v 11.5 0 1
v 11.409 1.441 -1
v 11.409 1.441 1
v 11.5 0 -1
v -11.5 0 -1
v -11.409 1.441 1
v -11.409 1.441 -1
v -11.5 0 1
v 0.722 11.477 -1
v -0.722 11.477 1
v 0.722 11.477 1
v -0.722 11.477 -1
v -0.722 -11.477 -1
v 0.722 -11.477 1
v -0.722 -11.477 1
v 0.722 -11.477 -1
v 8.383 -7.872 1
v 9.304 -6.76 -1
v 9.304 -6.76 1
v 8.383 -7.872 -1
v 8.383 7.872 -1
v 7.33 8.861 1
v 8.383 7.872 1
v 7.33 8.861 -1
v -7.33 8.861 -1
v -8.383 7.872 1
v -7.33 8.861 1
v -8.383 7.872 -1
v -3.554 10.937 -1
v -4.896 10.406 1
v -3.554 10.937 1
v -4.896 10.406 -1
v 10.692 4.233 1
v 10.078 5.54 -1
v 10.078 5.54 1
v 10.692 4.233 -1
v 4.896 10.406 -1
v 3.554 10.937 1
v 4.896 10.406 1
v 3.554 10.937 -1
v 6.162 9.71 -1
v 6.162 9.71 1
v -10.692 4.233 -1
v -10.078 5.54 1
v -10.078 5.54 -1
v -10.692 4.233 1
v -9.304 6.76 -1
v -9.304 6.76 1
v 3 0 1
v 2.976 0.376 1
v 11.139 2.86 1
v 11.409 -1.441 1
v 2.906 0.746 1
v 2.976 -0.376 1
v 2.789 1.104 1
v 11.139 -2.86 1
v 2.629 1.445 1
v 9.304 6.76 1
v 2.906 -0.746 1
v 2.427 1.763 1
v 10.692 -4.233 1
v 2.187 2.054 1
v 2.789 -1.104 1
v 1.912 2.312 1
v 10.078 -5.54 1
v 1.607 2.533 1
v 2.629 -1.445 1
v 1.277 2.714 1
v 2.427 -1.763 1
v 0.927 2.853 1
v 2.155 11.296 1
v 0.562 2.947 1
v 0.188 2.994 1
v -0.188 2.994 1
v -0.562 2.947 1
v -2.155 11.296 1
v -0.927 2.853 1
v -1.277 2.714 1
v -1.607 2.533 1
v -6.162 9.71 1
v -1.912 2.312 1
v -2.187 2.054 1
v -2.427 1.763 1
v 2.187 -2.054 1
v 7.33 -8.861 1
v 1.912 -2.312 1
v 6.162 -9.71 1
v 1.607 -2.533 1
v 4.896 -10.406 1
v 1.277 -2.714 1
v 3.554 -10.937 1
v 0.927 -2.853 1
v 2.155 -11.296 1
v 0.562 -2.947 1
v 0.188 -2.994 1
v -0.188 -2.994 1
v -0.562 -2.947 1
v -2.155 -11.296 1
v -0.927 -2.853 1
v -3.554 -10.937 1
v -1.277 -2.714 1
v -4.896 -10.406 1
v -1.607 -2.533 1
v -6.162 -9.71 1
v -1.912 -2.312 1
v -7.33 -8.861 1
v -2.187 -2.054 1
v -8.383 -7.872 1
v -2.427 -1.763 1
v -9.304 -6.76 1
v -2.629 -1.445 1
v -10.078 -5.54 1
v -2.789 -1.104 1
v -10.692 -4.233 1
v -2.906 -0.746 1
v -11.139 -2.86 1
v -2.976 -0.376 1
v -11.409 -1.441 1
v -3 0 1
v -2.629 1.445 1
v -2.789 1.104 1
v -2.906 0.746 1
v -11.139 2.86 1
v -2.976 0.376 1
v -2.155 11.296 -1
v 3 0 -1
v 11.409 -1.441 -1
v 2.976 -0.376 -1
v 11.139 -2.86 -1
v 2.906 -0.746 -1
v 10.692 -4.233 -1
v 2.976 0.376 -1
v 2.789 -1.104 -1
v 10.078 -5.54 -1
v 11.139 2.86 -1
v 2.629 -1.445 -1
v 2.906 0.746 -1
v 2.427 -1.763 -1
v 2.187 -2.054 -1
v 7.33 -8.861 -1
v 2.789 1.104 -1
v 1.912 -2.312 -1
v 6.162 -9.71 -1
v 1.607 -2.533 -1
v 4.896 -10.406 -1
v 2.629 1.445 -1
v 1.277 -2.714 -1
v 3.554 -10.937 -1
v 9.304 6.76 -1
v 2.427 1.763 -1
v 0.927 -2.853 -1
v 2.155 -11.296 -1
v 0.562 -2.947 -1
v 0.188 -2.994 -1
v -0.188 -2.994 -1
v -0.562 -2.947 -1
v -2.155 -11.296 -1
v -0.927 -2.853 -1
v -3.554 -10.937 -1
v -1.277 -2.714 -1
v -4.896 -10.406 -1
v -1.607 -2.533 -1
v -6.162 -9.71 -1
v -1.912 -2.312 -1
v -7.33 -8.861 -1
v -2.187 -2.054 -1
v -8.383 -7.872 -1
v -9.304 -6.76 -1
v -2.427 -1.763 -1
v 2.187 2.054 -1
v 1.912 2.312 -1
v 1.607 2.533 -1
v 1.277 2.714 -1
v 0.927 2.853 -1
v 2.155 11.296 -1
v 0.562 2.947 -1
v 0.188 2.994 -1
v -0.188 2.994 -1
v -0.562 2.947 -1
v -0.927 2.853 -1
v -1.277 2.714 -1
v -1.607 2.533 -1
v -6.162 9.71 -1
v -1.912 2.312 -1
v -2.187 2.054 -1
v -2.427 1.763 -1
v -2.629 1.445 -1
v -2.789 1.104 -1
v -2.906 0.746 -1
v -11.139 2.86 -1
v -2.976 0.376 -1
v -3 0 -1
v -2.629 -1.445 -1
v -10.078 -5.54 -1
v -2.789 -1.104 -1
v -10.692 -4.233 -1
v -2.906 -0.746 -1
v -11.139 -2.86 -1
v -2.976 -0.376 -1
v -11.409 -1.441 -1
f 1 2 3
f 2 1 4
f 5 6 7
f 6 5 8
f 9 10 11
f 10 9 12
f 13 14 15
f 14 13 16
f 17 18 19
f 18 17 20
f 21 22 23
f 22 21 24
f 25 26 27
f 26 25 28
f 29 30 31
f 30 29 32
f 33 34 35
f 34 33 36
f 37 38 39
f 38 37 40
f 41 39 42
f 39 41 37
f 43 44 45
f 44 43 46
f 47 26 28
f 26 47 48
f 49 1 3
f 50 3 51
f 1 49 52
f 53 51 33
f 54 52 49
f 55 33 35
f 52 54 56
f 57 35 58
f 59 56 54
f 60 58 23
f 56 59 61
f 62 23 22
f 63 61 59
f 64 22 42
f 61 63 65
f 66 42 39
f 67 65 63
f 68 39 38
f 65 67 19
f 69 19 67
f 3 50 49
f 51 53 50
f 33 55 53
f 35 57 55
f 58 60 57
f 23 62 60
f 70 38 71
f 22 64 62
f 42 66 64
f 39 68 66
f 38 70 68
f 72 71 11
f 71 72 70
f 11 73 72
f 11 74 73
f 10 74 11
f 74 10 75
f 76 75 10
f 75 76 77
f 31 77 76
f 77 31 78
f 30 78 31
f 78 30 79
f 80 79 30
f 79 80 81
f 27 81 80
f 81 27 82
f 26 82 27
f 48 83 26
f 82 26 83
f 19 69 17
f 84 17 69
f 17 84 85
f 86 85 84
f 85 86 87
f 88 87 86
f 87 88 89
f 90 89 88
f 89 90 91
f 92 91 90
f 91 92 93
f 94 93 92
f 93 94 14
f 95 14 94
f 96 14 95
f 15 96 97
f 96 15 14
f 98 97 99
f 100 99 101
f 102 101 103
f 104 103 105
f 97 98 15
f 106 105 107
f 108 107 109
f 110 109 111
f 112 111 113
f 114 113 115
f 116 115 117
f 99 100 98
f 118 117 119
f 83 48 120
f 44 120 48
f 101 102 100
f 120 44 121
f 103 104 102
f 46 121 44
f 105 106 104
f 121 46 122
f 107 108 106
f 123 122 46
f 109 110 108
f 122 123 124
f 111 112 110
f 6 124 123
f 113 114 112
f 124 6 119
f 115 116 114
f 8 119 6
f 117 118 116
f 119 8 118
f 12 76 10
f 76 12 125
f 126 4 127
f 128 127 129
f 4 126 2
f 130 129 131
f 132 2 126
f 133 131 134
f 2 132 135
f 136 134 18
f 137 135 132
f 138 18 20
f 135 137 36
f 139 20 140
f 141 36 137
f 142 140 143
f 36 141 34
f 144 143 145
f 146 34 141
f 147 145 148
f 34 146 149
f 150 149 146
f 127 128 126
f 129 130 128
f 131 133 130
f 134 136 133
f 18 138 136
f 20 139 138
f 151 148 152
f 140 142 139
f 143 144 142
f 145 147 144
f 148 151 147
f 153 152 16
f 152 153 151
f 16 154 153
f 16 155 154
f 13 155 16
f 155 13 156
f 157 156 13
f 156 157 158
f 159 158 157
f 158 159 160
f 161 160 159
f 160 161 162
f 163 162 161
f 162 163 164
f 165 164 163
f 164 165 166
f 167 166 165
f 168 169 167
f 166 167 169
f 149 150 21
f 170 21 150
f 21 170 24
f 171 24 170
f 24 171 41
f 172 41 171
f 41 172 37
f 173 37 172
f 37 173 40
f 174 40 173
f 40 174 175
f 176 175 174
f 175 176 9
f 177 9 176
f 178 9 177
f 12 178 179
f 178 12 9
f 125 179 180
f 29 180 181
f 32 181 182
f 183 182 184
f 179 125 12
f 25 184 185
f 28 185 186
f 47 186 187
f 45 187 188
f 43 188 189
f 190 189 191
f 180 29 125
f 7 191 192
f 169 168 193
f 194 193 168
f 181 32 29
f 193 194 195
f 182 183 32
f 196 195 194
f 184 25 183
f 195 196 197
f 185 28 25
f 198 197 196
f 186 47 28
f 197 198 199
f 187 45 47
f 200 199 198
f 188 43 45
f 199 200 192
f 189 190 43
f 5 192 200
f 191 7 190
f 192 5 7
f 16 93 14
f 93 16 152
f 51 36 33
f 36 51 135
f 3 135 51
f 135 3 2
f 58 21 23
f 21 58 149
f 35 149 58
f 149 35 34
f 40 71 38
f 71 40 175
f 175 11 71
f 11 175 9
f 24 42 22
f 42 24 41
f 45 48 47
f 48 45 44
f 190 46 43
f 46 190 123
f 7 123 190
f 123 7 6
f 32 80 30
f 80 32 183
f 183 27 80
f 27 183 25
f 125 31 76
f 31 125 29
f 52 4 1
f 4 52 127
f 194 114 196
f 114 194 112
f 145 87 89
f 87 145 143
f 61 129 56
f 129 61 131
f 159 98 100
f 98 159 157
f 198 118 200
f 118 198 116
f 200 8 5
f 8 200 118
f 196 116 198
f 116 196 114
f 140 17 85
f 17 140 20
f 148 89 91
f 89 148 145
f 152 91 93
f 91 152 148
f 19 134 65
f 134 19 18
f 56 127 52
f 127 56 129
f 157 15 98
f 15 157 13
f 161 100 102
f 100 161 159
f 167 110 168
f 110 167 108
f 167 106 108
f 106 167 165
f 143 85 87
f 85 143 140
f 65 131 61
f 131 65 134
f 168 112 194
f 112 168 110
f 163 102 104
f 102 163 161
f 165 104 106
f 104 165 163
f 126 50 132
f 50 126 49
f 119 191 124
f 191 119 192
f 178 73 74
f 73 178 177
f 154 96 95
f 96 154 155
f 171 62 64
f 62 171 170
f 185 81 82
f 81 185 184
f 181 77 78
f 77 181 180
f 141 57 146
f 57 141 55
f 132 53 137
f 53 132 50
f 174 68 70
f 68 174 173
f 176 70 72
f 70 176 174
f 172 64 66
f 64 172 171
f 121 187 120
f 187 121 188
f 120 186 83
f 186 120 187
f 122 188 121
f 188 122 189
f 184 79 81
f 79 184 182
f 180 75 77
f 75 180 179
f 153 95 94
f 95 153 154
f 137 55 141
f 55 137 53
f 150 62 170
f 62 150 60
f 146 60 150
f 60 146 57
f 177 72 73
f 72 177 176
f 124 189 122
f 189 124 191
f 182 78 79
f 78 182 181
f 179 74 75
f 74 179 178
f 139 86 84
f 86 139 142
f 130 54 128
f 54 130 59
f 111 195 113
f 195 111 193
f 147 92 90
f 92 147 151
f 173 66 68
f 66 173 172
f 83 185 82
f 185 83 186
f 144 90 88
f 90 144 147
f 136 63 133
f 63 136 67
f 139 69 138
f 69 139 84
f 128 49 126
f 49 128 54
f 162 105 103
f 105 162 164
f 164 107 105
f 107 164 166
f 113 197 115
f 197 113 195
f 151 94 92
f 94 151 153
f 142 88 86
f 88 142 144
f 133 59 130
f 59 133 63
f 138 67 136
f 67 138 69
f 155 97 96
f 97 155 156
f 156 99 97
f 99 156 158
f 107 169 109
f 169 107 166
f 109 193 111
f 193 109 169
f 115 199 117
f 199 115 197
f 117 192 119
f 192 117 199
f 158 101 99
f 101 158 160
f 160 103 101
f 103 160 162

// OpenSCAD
$fn = 50;


difference() {
	union() {
		translate(v = [0, 0, -1.0000000000]) {
			cylinder(h = 2, r = 11.5000000000);
		}
	}
	union() {
		translate(v = [0, 0, -100.0000000000]) {
			cylinder(h = 200, r = 3);
		}
	}
}
